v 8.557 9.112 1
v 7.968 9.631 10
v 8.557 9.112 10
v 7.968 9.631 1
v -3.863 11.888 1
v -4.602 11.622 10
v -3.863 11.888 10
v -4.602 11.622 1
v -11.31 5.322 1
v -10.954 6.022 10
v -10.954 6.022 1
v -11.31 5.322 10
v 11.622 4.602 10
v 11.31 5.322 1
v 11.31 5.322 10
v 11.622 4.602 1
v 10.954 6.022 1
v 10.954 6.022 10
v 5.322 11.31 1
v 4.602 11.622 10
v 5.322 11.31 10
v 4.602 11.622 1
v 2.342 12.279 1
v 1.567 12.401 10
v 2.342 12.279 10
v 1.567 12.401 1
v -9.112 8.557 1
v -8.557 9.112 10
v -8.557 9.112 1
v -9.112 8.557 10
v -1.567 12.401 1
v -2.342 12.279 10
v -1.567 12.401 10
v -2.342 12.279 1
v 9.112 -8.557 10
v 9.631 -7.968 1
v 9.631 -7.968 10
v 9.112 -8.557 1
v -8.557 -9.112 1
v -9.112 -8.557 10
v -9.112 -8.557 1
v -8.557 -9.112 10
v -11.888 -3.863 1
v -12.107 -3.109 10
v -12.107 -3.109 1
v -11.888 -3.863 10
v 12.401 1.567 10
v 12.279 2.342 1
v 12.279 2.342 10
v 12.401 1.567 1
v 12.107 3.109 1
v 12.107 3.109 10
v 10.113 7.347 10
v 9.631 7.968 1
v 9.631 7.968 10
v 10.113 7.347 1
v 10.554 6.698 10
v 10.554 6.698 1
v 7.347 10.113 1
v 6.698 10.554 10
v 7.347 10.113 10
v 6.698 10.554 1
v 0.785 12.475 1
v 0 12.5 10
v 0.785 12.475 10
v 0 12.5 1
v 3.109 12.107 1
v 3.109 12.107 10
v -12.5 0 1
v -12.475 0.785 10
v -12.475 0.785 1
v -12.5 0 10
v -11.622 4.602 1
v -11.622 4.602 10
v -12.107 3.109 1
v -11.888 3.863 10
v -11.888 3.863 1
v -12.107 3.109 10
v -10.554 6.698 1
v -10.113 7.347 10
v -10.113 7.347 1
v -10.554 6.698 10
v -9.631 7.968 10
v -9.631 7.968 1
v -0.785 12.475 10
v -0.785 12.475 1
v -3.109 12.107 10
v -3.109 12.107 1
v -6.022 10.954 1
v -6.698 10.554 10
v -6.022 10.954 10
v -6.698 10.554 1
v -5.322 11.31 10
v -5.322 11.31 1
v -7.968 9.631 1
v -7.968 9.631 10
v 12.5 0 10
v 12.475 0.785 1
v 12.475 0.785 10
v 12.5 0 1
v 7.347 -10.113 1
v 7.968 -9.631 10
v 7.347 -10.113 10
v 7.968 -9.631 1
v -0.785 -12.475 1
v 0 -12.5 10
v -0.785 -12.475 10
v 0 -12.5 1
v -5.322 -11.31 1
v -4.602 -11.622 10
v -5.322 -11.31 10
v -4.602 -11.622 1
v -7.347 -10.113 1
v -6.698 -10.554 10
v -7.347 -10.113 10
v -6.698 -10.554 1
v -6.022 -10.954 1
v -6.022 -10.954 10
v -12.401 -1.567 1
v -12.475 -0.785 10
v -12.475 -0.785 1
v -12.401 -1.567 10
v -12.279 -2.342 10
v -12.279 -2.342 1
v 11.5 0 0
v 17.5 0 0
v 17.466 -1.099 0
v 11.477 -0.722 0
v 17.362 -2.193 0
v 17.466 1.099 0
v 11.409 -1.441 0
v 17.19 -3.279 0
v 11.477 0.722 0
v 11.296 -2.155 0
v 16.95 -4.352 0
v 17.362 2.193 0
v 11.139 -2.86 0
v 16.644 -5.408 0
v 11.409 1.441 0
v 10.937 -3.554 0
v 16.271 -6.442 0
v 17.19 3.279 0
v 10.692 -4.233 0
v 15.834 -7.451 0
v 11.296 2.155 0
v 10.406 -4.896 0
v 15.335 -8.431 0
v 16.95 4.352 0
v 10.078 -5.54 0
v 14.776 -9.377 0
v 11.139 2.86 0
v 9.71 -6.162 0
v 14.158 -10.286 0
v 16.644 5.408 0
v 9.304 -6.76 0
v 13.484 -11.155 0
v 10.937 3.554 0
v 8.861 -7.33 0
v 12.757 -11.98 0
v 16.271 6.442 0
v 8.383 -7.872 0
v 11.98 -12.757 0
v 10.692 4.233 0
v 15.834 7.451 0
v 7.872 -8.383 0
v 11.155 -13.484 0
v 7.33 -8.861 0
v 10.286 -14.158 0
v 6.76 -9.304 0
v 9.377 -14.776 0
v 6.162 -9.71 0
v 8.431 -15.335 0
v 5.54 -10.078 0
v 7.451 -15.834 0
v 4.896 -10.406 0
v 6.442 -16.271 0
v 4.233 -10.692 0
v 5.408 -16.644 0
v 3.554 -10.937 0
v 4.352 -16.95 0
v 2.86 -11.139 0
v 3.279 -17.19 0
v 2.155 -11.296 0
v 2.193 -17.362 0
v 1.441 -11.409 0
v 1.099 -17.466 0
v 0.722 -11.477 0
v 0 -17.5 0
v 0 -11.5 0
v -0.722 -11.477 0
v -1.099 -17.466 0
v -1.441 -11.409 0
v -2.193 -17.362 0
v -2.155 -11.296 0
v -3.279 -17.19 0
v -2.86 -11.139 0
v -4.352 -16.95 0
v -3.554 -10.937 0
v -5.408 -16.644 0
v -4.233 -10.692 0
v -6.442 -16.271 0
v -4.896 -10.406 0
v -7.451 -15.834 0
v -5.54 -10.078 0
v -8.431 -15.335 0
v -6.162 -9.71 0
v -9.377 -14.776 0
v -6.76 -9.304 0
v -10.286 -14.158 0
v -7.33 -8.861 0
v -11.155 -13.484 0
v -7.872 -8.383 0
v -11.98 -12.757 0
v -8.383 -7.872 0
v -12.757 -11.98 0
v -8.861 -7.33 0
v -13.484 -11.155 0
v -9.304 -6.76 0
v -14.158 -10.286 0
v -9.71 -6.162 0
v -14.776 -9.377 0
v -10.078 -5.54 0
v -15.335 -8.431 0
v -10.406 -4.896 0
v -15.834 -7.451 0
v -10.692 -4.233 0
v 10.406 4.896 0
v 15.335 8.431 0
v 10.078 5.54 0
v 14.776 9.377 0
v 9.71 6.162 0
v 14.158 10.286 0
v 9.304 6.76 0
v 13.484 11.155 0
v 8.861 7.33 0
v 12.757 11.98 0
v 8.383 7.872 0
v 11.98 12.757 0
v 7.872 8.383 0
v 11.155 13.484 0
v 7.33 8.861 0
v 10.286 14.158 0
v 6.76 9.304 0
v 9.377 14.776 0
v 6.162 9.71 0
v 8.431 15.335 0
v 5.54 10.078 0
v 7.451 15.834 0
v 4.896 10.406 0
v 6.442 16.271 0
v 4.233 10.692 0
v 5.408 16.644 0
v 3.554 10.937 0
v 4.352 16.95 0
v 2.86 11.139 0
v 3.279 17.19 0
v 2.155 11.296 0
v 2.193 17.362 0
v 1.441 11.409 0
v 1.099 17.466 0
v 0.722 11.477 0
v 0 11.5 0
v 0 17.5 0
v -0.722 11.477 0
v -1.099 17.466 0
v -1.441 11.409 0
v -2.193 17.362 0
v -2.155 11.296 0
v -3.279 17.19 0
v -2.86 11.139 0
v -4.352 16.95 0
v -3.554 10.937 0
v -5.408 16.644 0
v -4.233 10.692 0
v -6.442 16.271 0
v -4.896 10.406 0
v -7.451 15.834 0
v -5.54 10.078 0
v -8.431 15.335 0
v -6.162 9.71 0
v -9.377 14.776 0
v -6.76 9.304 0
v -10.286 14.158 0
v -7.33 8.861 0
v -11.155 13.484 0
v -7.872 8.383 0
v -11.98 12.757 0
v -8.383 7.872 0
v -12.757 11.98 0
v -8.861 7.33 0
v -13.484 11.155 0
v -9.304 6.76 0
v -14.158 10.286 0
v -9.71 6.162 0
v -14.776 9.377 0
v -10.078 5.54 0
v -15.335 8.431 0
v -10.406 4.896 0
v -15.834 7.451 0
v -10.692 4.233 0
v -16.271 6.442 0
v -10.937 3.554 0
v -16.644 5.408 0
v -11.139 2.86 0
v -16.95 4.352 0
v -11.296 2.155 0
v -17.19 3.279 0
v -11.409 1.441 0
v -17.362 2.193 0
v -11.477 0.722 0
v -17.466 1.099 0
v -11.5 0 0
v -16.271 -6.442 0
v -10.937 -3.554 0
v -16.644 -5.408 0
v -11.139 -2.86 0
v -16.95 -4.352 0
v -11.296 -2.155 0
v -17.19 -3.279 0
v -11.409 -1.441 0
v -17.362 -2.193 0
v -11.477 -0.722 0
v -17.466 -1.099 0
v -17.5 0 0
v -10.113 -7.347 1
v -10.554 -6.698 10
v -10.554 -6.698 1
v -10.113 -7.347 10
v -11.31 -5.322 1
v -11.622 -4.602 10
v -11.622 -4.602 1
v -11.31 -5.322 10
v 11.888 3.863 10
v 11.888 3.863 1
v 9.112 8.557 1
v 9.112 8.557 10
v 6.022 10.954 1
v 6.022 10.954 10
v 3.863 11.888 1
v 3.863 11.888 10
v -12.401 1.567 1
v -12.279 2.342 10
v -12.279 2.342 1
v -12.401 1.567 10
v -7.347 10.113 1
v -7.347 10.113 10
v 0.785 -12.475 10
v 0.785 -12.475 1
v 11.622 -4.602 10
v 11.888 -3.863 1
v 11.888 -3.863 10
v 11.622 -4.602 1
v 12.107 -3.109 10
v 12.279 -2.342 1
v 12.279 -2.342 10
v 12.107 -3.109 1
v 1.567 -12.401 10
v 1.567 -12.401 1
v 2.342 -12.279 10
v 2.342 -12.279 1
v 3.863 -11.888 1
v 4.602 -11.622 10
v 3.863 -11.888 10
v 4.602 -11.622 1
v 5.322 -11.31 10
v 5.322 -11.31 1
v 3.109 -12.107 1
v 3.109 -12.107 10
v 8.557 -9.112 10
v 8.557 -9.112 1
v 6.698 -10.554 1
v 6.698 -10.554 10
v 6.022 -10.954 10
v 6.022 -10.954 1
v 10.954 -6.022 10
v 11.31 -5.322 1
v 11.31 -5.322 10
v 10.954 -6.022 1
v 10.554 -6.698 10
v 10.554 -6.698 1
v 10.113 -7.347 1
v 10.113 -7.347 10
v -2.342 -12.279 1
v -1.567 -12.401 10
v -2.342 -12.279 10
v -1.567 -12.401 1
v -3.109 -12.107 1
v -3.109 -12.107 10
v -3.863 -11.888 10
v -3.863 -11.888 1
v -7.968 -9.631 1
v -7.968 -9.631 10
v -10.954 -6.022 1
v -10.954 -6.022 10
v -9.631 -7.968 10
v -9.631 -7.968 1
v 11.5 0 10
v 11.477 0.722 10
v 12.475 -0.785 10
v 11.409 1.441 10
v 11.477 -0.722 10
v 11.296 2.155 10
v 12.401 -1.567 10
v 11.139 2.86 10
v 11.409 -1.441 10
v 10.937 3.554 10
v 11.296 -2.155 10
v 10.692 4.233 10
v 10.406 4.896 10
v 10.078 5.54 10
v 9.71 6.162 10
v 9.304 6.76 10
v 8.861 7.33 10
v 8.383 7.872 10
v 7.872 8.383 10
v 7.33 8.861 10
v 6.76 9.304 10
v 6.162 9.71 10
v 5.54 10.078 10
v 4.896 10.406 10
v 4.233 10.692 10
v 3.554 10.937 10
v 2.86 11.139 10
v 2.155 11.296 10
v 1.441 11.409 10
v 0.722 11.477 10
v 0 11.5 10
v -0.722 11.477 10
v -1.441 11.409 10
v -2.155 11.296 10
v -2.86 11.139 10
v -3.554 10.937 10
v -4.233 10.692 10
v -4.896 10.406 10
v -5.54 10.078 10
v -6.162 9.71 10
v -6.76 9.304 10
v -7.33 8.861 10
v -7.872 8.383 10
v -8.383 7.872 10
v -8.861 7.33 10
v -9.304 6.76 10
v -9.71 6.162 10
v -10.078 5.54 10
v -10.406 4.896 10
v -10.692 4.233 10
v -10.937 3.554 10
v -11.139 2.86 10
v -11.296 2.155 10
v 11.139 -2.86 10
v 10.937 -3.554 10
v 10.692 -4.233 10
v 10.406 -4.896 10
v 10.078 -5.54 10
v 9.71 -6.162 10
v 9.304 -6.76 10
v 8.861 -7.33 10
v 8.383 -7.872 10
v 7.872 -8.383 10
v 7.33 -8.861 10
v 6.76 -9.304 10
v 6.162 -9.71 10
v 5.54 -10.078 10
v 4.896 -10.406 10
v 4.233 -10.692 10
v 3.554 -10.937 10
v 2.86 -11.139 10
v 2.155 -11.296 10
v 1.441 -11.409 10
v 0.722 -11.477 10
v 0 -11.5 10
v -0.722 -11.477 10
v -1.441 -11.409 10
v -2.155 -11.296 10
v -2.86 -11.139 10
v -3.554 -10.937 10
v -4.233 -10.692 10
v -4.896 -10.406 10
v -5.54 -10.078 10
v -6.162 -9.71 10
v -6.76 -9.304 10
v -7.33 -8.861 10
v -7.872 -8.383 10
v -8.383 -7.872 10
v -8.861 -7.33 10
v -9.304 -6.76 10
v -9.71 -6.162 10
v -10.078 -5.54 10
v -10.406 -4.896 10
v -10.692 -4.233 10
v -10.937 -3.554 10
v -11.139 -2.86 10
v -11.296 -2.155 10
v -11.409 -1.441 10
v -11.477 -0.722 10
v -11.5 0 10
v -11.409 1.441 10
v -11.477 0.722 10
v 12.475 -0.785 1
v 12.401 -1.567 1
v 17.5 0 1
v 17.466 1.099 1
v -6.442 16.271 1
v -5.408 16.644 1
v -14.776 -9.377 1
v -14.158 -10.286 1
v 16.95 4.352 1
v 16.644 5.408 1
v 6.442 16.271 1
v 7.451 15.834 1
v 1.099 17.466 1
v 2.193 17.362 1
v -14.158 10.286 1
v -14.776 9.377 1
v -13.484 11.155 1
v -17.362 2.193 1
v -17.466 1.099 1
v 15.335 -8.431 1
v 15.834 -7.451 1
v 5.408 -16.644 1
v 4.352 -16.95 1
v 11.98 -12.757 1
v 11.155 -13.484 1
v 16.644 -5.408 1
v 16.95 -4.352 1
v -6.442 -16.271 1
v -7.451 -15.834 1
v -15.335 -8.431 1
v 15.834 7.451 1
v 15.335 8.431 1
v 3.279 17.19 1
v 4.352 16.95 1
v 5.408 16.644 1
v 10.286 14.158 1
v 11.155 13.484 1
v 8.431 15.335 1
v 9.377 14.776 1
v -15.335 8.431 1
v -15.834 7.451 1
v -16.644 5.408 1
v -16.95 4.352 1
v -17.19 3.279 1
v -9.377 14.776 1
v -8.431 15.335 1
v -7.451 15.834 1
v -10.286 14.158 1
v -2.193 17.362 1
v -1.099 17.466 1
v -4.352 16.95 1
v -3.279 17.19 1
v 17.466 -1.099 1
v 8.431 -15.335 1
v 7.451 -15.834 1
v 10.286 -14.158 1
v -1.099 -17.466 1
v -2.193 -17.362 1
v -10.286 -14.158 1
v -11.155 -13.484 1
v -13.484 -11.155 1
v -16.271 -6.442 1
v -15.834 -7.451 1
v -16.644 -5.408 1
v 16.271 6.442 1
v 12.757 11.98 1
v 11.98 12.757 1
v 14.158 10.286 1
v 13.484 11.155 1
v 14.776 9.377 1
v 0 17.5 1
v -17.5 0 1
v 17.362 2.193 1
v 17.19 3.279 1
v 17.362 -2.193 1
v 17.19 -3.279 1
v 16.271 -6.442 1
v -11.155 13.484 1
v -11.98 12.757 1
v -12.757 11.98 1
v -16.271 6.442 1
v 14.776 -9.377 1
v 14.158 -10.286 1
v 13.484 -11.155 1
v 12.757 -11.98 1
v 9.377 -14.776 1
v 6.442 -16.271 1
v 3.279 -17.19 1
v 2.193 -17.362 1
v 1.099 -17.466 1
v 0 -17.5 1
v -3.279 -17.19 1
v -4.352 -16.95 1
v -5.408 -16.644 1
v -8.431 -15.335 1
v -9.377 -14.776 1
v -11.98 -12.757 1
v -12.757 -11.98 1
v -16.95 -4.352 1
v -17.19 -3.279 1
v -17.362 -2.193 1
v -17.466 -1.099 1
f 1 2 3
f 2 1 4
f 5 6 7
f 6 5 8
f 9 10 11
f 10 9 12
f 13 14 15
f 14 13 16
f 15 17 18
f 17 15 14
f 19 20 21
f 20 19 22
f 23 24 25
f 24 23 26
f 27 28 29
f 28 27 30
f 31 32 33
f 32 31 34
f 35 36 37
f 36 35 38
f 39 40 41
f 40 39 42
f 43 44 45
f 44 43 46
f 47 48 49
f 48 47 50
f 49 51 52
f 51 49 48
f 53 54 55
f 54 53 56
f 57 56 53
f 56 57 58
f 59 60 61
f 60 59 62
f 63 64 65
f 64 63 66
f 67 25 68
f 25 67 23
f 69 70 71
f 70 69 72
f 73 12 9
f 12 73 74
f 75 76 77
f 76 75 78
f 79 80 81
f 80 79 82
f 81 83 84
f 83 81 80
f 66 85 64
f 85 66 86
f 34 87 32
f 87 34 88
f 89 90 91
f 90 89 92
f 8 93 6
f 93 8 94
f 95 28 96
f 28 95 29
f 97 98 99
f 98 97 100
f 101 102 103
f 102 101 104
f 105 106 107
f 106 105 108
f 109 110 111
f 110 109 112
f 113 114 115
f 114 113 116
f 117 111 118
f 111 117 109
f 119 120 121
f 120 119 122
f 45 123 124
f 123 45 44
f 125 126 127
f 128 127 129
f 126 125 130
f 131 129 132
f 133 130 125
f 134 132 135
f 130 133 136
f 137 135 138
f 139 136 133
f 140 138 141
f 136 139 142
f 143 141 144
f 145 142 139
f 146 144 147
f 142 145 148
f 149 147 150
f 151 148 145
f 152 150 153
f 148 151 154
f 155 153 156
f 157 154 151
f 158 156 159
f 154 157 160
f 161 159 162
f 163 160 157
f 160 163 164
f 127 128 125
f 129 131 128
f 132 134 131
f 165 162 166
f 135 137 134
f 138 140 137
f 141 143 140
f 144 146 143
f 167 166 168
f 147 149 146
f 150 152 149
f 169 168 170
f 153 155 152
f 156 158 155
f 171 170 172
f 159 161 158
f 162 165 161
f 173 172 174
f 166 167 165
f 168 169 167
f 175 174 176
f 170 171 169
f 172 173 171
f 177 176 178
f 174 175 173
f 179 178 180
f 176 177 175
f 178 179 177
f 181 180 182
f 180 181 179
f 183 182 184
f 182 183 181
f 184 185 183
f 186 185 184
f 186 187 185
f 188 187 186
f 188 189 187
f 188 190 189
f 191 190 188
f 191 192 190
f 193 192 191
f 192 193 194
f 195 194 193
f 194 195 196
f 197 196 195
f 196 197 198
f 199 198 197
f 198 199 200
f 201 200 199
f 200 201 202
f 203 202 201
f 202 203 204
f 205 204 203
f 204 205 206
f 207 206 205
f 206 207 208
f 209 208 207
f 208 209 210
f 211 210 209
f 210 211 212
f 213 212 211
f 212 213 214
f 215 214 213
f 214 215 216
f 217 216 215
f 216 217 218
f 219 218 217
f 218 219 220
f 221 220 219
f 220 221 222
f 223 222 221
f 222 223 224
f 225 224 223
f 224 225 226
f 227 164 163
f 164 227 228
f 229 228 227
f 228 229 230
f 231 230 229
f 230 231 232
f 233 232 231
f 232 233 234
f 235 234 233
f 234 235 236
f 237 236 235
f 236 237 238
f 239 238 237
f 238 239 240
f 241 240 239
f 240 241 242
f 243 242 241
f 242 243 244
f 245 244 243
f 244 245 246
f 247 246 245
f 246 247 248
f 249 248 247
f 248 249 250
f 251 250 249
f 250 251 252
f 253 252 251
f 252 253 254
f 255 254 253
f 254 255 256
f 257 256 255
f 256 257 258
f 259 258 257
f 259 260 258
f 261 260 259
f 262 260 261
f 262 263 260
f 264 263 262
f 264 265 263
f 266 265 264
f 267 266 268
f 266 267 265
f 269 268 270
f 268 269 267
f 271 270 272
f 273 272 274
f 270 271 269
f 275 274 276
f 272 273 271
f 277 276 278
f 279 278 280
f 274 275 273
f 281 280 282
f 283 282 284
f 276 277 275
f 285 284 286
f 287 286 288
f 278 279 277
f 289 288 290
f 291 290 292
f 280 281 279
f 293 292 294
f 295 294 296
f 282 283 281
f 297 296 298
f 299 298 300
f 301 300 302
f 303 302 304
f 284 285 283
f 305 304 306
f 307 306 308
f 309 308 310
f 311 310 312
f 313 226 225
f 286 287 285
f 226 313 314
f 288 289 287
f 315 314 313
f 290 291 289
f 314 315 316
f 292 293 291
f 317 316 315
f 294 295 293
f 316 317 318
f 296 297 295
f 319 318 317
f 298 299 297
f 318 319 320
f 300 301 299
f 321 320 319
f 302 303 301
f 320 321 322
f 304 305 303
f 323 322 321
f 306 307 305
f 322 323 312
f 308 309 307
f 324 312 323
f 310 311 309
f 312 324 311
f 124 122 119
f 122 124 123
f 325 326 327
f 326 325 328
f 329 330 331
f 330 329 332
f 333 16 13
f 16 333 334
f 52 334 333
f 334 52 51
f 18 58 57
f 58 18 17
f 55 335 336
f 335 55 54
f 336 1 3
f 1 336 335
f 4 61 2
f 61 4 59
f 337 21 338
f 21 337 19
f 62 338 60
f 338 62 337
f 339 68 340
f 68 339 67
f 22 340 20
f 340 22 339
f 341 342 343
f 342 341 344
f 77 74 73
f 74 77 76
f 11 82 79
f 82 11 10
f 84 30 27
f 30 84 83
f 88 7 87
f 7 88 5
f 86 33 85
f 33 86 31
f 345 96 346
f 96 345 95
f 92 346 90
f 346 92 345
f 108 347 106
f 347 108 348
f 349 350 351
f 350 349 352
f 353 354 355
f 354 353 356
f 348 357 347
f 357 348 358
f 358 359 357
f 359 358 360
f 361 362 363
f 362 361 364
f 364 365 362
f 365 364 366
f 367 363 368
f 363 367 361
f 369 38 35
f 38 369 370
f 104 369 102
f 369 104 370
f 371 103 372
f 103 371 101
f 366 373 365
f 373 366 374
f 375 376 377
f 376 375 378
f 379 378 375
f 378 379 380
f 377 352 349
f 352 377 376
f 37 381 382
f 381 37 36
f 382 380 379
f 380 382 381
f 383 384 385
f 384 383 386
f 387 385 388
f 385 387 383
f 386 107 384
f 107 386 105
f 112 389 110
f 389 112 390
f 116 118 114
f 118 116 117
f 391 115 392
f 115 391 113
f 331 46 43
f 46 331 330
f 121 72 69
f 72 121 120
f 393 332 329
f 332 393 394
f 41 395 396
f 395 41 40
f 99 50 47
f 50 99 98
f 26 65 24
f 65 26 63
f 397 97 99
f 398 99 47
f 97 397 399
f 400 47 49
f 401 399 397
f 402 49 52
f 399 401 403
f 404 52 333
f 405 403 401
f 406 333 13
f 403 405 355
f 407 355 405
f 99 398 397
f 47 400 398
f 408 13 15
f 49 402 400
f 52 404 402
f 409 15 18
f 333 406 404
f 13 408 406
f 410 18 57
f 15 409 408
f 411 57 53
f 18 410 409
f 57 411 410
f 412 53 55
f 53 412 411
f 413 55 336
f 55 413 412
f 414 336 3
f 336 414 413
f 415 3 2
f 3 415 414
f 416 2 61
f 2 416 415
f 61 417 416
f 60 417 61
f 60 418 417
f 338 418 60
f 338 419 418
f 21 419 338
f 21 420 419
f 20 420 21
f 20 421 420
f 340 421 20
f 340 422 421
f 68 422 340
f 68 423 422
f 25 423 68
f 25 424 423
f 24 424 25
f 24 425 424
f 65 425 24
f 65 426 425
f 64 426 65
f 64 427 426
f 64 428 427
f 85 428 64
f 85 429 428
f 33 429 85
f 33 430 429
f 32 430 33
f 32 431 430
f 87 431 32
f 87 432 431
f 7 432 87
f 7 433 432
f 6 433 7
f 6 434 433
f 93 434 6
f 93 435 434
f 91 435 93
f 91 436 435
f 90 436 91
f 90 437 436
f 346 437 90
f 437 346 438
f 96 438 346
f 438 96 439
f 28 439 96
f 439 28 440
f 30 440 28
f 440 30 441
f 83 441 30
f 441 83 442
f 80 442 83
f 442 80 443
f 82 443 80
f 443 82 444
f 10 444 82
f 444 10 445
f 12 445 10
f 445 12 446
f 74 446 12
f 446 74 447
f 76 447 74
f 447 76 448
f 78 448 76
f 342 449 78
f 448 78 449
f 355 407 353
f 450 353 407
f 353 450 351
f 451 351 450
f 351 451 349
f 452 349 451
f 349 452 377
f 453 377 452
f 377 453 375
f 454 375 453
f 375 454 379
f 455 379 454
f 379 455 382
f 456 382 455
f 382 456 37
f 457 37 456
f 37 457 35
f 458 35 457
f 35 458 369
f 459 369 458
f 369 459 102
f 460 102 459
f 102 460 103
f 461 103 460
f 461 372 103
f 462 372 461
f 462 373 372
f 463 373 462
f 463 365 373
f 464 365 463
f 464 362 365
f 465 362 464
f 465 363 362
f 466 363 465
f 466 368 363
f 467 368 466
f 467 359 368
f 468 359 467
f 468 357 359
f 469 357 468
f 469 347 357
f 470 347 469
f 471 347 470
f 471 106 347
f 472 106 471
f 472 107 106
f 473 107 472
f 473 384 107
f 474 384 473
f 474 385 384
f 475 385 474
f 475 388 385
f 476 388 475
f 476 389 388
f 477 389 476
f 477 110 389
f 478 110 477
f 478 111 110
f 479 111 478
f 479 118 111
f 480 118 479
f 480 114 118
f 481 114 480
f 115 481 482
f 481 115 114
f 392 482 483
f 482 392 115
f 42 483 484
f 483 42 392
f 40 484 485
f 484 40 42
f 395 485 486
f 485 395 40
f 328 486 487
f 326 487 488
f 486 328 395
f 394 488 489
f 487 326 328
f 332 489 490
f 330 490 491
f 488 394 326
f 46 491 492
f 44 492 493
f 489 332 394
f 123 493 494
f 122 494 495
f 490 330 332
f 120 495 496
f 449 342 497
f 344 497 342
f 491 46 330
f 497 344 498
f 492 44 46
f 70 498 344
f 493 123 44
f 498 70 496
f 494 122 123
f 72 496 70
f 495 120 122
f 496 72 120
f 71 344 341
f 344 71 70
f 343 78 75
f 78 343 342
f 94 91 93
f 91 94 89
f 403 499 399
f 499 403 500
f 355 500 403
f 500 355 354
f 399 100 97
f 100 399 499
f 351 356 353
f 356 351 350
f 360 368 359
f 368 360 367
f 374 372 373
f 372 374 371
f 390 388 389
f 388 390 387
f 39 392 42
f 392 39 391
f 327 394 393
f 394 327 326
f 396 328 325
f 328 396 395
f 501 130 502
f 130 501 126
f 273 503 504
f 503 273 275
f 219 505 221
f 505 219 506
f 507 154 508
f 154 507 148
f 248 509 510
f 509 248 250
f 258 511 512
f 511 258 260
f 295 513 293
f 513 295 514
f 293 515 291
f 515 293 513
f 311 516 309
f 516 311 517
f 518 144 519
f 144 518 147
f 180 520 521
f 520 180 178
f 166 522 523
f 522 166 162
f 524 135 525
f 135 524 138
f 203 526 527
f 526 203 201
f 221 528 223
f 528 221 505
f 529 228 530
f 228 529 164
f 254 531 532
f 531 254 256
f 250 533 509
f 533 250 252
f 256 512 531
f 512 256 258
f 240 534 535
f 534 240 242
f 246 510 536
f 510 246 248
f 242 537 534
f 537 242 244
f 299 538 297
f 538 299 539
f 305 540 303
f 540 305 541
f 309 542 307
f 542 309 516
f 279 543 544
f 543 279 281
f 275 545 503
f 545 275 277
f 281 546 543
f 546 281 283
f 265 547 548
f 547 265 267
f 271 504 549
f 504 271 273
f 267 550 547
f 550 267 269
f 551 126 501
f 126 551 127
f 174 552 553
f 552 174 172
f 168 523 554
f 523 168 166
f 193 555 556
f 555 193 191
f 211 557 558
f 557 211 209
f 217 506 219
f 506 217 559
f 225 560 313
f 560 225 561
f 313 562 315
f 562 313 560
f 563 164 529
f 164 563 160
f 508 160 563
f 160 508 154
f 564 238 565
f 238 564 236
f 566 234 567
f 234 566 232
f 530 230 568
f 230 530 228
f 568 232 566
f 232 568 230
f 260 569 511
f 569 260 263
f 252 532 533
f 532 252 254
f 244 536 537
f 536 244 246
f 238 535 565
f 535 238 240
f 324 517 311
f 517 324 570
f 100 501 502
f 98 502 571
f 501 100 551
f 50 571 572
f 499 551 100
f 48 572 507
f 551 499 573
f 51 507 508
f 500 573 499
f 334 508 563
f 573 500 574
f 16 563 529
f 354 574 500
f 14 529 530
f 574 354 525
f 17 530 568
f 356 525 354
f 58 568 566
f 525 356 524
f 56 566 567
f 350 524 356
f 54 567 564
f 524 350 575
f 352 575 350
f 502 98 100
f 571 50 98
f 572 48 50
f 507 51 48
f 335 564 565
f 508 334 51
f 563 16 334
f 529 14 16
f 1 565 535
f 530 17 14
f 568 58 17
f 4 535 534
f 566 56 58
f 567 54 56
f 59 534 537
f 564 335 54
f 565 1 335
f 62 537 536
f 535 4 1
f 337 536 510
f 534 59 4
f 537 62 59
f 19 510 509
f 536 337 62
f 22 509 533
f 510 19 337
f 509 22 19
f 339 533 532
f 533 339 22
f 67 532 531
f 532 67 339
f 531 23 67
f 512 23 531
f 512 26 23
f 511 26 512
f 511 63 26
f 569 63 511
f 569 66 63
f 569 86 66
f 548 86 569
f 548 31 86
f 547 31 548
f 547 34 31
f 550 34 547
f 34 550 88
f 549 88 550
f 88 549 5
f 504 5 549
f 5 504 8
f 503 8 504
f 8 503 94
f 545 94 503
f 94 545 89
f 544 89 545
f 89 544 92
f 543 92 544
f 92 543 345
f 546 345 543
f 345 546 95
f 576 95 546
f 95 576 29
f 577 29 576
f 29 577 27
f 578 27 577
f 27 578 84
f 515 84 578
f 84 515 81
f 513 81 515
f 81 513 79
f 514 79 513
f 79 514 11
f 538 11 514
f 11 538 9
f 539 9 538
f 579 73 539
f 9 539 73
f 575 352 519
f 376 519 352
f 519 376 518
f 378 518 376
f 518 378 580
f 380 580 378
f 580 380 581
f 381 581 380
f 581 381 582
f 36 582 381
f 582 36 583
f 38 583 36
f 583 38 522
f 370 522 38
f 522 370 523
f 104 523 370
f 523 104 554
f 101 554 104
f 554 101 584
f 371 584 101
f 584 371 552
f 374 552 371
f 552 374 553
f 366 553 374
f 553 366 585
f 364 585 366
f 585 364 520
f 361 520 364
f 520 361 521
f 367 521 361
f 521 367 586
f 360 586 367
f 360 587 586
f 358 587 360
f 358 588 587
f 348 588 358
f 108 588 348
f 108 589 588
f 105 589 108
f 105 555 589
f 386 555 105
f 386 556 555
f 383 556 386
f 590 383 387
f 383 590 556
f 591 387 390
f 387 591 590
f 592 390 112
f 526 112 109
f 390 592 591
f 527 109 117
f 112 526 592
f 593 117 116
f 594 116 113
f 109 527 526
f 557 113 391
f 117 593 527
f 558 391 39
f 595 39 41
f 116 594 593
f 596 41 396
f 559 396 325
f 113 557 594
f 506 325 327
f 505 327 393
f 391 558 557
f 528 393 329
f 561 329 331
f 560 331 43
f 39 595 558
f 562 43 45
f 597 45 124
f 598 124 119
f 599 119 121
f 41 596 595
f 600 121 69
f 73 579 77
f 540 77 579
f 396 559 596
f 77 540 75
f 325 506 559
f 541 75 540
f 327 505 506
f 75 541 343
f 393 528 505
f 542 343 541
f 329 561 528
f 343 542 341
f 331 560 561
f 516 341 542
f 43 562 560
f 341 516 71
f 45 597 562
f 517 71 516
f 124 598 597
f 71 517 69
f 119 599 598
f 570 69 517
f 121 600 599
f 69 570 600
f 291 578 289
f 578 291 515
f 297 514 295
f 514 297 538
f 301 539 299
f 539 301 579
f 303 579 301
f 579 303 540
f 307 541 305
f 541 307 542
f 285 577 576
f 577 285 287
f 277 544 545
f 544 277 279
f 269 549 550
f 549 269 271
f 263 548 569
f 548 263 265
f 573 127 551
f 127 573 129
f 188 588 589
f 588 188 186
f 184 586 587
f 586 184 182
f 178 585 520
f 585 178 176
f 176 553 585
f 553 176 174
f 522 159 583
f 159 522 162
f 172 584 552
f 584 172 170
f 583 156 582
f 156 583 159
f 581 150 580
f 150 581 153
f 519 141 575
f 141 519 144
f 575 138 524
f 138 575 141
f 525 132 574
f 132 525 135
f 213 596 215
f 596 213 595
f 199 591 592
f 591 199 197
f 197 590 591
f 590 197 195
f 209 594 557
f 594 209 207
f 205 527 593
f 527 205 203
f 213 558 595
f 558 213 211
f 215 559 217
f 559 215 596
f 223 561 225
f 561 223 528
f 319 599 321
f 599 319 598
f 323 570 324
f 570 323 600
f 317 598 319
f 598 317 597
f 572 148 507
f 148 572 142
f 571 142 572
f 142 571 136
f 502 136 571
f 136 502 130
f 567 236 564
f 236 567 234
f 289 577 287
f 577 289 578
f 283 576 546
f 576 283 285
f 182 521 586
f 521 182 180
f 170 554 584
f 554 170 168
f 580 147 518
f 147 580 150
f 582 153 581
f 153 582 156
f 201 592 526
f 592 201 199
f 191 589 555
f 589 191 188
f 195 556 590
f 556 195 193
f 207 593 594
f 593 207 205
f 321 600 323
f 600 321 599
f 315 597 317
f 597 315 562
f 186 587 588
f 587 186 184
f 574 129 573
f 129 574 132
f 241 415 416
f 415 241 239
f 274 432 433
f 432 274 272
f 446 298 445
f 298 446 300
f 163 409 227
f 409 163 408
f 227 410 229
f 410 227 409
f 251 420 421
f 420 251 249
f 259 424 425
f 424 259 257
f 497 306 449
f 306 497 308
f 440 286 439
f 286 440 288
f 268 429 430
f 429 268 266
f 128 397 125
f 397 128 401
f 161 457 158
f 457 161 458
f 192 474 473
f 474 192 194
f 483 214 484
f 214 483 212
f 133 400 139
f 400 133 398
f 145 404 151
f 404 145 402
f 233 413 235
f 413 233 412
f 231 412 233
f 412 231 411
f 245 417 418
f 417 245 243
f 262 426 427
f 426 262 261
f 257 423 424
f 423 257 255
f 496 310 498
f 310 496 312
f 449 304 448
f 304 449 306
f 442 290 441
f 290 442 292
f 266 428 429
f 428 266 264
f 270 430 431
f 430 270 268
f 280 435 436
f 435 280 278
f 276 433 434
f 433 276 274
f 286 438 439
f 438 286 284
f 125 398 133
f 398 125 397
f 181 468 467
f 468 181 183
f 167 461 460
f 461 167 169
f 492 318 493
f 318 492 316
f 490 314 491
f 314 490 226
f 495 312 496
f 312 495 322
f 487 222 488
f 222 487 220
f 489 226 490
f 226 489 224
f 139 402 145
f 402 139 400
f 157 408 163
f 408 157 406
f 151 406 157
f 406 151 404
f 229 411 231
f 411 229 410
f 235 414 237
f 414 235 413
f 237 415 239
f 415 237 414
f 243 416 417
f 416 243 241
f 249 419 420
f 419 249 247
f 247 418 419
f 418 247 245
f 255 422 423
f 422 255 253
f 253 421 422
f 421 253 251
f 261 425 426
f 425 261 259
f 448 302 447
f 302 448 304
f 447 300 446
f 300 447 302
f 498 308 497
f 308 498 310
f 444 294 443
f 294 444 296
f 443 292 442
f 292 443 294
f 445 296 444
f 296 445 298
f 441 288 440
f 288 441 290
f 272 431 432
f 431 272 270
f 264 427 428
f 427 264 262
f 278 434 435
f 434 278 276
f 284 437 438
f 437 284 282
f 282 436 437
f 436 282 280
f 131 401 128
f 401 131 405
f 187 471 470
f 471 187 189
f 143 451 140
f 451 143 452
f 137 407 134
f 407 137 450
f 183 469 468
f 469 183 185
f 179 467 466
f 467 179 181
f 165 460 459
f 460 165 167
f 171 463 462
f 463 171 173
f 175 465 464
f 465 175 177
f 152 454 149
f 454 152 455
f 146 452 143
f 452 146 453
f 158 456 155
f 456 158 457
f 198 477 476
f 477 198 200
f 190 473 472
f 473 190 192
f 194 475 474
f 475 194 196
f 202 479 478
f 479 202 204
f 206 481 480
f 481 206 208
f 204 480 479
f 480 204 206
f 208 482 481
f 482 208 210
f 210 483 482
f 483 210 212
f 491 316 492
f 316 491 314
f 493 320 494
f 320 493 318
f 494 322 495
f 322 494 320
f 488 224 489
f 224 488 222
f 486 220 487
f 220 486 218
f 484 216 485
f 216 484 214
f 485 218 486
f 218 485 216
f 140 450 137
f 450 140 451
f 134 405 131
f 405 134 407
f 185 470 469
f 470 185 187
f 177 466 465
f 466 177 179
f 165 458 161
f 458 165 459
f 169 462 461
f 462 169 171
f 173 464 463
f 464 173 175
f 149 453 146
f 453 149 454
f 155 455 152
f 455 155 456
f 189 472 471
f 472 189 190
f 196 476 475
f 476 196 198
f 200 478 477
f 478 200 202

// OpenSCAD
d1 = 25;
d2 = 23;
d3 = 35;
h = 10;

difference() {
    union() {
        cylinder(d=d1, h=h, $fn=100);
        cylinder(d=d3, h=1, $fn=100);
    }
    translate([0,0,-5]) cylinder(d=d2, h=h+10, $fn=100);    
}
